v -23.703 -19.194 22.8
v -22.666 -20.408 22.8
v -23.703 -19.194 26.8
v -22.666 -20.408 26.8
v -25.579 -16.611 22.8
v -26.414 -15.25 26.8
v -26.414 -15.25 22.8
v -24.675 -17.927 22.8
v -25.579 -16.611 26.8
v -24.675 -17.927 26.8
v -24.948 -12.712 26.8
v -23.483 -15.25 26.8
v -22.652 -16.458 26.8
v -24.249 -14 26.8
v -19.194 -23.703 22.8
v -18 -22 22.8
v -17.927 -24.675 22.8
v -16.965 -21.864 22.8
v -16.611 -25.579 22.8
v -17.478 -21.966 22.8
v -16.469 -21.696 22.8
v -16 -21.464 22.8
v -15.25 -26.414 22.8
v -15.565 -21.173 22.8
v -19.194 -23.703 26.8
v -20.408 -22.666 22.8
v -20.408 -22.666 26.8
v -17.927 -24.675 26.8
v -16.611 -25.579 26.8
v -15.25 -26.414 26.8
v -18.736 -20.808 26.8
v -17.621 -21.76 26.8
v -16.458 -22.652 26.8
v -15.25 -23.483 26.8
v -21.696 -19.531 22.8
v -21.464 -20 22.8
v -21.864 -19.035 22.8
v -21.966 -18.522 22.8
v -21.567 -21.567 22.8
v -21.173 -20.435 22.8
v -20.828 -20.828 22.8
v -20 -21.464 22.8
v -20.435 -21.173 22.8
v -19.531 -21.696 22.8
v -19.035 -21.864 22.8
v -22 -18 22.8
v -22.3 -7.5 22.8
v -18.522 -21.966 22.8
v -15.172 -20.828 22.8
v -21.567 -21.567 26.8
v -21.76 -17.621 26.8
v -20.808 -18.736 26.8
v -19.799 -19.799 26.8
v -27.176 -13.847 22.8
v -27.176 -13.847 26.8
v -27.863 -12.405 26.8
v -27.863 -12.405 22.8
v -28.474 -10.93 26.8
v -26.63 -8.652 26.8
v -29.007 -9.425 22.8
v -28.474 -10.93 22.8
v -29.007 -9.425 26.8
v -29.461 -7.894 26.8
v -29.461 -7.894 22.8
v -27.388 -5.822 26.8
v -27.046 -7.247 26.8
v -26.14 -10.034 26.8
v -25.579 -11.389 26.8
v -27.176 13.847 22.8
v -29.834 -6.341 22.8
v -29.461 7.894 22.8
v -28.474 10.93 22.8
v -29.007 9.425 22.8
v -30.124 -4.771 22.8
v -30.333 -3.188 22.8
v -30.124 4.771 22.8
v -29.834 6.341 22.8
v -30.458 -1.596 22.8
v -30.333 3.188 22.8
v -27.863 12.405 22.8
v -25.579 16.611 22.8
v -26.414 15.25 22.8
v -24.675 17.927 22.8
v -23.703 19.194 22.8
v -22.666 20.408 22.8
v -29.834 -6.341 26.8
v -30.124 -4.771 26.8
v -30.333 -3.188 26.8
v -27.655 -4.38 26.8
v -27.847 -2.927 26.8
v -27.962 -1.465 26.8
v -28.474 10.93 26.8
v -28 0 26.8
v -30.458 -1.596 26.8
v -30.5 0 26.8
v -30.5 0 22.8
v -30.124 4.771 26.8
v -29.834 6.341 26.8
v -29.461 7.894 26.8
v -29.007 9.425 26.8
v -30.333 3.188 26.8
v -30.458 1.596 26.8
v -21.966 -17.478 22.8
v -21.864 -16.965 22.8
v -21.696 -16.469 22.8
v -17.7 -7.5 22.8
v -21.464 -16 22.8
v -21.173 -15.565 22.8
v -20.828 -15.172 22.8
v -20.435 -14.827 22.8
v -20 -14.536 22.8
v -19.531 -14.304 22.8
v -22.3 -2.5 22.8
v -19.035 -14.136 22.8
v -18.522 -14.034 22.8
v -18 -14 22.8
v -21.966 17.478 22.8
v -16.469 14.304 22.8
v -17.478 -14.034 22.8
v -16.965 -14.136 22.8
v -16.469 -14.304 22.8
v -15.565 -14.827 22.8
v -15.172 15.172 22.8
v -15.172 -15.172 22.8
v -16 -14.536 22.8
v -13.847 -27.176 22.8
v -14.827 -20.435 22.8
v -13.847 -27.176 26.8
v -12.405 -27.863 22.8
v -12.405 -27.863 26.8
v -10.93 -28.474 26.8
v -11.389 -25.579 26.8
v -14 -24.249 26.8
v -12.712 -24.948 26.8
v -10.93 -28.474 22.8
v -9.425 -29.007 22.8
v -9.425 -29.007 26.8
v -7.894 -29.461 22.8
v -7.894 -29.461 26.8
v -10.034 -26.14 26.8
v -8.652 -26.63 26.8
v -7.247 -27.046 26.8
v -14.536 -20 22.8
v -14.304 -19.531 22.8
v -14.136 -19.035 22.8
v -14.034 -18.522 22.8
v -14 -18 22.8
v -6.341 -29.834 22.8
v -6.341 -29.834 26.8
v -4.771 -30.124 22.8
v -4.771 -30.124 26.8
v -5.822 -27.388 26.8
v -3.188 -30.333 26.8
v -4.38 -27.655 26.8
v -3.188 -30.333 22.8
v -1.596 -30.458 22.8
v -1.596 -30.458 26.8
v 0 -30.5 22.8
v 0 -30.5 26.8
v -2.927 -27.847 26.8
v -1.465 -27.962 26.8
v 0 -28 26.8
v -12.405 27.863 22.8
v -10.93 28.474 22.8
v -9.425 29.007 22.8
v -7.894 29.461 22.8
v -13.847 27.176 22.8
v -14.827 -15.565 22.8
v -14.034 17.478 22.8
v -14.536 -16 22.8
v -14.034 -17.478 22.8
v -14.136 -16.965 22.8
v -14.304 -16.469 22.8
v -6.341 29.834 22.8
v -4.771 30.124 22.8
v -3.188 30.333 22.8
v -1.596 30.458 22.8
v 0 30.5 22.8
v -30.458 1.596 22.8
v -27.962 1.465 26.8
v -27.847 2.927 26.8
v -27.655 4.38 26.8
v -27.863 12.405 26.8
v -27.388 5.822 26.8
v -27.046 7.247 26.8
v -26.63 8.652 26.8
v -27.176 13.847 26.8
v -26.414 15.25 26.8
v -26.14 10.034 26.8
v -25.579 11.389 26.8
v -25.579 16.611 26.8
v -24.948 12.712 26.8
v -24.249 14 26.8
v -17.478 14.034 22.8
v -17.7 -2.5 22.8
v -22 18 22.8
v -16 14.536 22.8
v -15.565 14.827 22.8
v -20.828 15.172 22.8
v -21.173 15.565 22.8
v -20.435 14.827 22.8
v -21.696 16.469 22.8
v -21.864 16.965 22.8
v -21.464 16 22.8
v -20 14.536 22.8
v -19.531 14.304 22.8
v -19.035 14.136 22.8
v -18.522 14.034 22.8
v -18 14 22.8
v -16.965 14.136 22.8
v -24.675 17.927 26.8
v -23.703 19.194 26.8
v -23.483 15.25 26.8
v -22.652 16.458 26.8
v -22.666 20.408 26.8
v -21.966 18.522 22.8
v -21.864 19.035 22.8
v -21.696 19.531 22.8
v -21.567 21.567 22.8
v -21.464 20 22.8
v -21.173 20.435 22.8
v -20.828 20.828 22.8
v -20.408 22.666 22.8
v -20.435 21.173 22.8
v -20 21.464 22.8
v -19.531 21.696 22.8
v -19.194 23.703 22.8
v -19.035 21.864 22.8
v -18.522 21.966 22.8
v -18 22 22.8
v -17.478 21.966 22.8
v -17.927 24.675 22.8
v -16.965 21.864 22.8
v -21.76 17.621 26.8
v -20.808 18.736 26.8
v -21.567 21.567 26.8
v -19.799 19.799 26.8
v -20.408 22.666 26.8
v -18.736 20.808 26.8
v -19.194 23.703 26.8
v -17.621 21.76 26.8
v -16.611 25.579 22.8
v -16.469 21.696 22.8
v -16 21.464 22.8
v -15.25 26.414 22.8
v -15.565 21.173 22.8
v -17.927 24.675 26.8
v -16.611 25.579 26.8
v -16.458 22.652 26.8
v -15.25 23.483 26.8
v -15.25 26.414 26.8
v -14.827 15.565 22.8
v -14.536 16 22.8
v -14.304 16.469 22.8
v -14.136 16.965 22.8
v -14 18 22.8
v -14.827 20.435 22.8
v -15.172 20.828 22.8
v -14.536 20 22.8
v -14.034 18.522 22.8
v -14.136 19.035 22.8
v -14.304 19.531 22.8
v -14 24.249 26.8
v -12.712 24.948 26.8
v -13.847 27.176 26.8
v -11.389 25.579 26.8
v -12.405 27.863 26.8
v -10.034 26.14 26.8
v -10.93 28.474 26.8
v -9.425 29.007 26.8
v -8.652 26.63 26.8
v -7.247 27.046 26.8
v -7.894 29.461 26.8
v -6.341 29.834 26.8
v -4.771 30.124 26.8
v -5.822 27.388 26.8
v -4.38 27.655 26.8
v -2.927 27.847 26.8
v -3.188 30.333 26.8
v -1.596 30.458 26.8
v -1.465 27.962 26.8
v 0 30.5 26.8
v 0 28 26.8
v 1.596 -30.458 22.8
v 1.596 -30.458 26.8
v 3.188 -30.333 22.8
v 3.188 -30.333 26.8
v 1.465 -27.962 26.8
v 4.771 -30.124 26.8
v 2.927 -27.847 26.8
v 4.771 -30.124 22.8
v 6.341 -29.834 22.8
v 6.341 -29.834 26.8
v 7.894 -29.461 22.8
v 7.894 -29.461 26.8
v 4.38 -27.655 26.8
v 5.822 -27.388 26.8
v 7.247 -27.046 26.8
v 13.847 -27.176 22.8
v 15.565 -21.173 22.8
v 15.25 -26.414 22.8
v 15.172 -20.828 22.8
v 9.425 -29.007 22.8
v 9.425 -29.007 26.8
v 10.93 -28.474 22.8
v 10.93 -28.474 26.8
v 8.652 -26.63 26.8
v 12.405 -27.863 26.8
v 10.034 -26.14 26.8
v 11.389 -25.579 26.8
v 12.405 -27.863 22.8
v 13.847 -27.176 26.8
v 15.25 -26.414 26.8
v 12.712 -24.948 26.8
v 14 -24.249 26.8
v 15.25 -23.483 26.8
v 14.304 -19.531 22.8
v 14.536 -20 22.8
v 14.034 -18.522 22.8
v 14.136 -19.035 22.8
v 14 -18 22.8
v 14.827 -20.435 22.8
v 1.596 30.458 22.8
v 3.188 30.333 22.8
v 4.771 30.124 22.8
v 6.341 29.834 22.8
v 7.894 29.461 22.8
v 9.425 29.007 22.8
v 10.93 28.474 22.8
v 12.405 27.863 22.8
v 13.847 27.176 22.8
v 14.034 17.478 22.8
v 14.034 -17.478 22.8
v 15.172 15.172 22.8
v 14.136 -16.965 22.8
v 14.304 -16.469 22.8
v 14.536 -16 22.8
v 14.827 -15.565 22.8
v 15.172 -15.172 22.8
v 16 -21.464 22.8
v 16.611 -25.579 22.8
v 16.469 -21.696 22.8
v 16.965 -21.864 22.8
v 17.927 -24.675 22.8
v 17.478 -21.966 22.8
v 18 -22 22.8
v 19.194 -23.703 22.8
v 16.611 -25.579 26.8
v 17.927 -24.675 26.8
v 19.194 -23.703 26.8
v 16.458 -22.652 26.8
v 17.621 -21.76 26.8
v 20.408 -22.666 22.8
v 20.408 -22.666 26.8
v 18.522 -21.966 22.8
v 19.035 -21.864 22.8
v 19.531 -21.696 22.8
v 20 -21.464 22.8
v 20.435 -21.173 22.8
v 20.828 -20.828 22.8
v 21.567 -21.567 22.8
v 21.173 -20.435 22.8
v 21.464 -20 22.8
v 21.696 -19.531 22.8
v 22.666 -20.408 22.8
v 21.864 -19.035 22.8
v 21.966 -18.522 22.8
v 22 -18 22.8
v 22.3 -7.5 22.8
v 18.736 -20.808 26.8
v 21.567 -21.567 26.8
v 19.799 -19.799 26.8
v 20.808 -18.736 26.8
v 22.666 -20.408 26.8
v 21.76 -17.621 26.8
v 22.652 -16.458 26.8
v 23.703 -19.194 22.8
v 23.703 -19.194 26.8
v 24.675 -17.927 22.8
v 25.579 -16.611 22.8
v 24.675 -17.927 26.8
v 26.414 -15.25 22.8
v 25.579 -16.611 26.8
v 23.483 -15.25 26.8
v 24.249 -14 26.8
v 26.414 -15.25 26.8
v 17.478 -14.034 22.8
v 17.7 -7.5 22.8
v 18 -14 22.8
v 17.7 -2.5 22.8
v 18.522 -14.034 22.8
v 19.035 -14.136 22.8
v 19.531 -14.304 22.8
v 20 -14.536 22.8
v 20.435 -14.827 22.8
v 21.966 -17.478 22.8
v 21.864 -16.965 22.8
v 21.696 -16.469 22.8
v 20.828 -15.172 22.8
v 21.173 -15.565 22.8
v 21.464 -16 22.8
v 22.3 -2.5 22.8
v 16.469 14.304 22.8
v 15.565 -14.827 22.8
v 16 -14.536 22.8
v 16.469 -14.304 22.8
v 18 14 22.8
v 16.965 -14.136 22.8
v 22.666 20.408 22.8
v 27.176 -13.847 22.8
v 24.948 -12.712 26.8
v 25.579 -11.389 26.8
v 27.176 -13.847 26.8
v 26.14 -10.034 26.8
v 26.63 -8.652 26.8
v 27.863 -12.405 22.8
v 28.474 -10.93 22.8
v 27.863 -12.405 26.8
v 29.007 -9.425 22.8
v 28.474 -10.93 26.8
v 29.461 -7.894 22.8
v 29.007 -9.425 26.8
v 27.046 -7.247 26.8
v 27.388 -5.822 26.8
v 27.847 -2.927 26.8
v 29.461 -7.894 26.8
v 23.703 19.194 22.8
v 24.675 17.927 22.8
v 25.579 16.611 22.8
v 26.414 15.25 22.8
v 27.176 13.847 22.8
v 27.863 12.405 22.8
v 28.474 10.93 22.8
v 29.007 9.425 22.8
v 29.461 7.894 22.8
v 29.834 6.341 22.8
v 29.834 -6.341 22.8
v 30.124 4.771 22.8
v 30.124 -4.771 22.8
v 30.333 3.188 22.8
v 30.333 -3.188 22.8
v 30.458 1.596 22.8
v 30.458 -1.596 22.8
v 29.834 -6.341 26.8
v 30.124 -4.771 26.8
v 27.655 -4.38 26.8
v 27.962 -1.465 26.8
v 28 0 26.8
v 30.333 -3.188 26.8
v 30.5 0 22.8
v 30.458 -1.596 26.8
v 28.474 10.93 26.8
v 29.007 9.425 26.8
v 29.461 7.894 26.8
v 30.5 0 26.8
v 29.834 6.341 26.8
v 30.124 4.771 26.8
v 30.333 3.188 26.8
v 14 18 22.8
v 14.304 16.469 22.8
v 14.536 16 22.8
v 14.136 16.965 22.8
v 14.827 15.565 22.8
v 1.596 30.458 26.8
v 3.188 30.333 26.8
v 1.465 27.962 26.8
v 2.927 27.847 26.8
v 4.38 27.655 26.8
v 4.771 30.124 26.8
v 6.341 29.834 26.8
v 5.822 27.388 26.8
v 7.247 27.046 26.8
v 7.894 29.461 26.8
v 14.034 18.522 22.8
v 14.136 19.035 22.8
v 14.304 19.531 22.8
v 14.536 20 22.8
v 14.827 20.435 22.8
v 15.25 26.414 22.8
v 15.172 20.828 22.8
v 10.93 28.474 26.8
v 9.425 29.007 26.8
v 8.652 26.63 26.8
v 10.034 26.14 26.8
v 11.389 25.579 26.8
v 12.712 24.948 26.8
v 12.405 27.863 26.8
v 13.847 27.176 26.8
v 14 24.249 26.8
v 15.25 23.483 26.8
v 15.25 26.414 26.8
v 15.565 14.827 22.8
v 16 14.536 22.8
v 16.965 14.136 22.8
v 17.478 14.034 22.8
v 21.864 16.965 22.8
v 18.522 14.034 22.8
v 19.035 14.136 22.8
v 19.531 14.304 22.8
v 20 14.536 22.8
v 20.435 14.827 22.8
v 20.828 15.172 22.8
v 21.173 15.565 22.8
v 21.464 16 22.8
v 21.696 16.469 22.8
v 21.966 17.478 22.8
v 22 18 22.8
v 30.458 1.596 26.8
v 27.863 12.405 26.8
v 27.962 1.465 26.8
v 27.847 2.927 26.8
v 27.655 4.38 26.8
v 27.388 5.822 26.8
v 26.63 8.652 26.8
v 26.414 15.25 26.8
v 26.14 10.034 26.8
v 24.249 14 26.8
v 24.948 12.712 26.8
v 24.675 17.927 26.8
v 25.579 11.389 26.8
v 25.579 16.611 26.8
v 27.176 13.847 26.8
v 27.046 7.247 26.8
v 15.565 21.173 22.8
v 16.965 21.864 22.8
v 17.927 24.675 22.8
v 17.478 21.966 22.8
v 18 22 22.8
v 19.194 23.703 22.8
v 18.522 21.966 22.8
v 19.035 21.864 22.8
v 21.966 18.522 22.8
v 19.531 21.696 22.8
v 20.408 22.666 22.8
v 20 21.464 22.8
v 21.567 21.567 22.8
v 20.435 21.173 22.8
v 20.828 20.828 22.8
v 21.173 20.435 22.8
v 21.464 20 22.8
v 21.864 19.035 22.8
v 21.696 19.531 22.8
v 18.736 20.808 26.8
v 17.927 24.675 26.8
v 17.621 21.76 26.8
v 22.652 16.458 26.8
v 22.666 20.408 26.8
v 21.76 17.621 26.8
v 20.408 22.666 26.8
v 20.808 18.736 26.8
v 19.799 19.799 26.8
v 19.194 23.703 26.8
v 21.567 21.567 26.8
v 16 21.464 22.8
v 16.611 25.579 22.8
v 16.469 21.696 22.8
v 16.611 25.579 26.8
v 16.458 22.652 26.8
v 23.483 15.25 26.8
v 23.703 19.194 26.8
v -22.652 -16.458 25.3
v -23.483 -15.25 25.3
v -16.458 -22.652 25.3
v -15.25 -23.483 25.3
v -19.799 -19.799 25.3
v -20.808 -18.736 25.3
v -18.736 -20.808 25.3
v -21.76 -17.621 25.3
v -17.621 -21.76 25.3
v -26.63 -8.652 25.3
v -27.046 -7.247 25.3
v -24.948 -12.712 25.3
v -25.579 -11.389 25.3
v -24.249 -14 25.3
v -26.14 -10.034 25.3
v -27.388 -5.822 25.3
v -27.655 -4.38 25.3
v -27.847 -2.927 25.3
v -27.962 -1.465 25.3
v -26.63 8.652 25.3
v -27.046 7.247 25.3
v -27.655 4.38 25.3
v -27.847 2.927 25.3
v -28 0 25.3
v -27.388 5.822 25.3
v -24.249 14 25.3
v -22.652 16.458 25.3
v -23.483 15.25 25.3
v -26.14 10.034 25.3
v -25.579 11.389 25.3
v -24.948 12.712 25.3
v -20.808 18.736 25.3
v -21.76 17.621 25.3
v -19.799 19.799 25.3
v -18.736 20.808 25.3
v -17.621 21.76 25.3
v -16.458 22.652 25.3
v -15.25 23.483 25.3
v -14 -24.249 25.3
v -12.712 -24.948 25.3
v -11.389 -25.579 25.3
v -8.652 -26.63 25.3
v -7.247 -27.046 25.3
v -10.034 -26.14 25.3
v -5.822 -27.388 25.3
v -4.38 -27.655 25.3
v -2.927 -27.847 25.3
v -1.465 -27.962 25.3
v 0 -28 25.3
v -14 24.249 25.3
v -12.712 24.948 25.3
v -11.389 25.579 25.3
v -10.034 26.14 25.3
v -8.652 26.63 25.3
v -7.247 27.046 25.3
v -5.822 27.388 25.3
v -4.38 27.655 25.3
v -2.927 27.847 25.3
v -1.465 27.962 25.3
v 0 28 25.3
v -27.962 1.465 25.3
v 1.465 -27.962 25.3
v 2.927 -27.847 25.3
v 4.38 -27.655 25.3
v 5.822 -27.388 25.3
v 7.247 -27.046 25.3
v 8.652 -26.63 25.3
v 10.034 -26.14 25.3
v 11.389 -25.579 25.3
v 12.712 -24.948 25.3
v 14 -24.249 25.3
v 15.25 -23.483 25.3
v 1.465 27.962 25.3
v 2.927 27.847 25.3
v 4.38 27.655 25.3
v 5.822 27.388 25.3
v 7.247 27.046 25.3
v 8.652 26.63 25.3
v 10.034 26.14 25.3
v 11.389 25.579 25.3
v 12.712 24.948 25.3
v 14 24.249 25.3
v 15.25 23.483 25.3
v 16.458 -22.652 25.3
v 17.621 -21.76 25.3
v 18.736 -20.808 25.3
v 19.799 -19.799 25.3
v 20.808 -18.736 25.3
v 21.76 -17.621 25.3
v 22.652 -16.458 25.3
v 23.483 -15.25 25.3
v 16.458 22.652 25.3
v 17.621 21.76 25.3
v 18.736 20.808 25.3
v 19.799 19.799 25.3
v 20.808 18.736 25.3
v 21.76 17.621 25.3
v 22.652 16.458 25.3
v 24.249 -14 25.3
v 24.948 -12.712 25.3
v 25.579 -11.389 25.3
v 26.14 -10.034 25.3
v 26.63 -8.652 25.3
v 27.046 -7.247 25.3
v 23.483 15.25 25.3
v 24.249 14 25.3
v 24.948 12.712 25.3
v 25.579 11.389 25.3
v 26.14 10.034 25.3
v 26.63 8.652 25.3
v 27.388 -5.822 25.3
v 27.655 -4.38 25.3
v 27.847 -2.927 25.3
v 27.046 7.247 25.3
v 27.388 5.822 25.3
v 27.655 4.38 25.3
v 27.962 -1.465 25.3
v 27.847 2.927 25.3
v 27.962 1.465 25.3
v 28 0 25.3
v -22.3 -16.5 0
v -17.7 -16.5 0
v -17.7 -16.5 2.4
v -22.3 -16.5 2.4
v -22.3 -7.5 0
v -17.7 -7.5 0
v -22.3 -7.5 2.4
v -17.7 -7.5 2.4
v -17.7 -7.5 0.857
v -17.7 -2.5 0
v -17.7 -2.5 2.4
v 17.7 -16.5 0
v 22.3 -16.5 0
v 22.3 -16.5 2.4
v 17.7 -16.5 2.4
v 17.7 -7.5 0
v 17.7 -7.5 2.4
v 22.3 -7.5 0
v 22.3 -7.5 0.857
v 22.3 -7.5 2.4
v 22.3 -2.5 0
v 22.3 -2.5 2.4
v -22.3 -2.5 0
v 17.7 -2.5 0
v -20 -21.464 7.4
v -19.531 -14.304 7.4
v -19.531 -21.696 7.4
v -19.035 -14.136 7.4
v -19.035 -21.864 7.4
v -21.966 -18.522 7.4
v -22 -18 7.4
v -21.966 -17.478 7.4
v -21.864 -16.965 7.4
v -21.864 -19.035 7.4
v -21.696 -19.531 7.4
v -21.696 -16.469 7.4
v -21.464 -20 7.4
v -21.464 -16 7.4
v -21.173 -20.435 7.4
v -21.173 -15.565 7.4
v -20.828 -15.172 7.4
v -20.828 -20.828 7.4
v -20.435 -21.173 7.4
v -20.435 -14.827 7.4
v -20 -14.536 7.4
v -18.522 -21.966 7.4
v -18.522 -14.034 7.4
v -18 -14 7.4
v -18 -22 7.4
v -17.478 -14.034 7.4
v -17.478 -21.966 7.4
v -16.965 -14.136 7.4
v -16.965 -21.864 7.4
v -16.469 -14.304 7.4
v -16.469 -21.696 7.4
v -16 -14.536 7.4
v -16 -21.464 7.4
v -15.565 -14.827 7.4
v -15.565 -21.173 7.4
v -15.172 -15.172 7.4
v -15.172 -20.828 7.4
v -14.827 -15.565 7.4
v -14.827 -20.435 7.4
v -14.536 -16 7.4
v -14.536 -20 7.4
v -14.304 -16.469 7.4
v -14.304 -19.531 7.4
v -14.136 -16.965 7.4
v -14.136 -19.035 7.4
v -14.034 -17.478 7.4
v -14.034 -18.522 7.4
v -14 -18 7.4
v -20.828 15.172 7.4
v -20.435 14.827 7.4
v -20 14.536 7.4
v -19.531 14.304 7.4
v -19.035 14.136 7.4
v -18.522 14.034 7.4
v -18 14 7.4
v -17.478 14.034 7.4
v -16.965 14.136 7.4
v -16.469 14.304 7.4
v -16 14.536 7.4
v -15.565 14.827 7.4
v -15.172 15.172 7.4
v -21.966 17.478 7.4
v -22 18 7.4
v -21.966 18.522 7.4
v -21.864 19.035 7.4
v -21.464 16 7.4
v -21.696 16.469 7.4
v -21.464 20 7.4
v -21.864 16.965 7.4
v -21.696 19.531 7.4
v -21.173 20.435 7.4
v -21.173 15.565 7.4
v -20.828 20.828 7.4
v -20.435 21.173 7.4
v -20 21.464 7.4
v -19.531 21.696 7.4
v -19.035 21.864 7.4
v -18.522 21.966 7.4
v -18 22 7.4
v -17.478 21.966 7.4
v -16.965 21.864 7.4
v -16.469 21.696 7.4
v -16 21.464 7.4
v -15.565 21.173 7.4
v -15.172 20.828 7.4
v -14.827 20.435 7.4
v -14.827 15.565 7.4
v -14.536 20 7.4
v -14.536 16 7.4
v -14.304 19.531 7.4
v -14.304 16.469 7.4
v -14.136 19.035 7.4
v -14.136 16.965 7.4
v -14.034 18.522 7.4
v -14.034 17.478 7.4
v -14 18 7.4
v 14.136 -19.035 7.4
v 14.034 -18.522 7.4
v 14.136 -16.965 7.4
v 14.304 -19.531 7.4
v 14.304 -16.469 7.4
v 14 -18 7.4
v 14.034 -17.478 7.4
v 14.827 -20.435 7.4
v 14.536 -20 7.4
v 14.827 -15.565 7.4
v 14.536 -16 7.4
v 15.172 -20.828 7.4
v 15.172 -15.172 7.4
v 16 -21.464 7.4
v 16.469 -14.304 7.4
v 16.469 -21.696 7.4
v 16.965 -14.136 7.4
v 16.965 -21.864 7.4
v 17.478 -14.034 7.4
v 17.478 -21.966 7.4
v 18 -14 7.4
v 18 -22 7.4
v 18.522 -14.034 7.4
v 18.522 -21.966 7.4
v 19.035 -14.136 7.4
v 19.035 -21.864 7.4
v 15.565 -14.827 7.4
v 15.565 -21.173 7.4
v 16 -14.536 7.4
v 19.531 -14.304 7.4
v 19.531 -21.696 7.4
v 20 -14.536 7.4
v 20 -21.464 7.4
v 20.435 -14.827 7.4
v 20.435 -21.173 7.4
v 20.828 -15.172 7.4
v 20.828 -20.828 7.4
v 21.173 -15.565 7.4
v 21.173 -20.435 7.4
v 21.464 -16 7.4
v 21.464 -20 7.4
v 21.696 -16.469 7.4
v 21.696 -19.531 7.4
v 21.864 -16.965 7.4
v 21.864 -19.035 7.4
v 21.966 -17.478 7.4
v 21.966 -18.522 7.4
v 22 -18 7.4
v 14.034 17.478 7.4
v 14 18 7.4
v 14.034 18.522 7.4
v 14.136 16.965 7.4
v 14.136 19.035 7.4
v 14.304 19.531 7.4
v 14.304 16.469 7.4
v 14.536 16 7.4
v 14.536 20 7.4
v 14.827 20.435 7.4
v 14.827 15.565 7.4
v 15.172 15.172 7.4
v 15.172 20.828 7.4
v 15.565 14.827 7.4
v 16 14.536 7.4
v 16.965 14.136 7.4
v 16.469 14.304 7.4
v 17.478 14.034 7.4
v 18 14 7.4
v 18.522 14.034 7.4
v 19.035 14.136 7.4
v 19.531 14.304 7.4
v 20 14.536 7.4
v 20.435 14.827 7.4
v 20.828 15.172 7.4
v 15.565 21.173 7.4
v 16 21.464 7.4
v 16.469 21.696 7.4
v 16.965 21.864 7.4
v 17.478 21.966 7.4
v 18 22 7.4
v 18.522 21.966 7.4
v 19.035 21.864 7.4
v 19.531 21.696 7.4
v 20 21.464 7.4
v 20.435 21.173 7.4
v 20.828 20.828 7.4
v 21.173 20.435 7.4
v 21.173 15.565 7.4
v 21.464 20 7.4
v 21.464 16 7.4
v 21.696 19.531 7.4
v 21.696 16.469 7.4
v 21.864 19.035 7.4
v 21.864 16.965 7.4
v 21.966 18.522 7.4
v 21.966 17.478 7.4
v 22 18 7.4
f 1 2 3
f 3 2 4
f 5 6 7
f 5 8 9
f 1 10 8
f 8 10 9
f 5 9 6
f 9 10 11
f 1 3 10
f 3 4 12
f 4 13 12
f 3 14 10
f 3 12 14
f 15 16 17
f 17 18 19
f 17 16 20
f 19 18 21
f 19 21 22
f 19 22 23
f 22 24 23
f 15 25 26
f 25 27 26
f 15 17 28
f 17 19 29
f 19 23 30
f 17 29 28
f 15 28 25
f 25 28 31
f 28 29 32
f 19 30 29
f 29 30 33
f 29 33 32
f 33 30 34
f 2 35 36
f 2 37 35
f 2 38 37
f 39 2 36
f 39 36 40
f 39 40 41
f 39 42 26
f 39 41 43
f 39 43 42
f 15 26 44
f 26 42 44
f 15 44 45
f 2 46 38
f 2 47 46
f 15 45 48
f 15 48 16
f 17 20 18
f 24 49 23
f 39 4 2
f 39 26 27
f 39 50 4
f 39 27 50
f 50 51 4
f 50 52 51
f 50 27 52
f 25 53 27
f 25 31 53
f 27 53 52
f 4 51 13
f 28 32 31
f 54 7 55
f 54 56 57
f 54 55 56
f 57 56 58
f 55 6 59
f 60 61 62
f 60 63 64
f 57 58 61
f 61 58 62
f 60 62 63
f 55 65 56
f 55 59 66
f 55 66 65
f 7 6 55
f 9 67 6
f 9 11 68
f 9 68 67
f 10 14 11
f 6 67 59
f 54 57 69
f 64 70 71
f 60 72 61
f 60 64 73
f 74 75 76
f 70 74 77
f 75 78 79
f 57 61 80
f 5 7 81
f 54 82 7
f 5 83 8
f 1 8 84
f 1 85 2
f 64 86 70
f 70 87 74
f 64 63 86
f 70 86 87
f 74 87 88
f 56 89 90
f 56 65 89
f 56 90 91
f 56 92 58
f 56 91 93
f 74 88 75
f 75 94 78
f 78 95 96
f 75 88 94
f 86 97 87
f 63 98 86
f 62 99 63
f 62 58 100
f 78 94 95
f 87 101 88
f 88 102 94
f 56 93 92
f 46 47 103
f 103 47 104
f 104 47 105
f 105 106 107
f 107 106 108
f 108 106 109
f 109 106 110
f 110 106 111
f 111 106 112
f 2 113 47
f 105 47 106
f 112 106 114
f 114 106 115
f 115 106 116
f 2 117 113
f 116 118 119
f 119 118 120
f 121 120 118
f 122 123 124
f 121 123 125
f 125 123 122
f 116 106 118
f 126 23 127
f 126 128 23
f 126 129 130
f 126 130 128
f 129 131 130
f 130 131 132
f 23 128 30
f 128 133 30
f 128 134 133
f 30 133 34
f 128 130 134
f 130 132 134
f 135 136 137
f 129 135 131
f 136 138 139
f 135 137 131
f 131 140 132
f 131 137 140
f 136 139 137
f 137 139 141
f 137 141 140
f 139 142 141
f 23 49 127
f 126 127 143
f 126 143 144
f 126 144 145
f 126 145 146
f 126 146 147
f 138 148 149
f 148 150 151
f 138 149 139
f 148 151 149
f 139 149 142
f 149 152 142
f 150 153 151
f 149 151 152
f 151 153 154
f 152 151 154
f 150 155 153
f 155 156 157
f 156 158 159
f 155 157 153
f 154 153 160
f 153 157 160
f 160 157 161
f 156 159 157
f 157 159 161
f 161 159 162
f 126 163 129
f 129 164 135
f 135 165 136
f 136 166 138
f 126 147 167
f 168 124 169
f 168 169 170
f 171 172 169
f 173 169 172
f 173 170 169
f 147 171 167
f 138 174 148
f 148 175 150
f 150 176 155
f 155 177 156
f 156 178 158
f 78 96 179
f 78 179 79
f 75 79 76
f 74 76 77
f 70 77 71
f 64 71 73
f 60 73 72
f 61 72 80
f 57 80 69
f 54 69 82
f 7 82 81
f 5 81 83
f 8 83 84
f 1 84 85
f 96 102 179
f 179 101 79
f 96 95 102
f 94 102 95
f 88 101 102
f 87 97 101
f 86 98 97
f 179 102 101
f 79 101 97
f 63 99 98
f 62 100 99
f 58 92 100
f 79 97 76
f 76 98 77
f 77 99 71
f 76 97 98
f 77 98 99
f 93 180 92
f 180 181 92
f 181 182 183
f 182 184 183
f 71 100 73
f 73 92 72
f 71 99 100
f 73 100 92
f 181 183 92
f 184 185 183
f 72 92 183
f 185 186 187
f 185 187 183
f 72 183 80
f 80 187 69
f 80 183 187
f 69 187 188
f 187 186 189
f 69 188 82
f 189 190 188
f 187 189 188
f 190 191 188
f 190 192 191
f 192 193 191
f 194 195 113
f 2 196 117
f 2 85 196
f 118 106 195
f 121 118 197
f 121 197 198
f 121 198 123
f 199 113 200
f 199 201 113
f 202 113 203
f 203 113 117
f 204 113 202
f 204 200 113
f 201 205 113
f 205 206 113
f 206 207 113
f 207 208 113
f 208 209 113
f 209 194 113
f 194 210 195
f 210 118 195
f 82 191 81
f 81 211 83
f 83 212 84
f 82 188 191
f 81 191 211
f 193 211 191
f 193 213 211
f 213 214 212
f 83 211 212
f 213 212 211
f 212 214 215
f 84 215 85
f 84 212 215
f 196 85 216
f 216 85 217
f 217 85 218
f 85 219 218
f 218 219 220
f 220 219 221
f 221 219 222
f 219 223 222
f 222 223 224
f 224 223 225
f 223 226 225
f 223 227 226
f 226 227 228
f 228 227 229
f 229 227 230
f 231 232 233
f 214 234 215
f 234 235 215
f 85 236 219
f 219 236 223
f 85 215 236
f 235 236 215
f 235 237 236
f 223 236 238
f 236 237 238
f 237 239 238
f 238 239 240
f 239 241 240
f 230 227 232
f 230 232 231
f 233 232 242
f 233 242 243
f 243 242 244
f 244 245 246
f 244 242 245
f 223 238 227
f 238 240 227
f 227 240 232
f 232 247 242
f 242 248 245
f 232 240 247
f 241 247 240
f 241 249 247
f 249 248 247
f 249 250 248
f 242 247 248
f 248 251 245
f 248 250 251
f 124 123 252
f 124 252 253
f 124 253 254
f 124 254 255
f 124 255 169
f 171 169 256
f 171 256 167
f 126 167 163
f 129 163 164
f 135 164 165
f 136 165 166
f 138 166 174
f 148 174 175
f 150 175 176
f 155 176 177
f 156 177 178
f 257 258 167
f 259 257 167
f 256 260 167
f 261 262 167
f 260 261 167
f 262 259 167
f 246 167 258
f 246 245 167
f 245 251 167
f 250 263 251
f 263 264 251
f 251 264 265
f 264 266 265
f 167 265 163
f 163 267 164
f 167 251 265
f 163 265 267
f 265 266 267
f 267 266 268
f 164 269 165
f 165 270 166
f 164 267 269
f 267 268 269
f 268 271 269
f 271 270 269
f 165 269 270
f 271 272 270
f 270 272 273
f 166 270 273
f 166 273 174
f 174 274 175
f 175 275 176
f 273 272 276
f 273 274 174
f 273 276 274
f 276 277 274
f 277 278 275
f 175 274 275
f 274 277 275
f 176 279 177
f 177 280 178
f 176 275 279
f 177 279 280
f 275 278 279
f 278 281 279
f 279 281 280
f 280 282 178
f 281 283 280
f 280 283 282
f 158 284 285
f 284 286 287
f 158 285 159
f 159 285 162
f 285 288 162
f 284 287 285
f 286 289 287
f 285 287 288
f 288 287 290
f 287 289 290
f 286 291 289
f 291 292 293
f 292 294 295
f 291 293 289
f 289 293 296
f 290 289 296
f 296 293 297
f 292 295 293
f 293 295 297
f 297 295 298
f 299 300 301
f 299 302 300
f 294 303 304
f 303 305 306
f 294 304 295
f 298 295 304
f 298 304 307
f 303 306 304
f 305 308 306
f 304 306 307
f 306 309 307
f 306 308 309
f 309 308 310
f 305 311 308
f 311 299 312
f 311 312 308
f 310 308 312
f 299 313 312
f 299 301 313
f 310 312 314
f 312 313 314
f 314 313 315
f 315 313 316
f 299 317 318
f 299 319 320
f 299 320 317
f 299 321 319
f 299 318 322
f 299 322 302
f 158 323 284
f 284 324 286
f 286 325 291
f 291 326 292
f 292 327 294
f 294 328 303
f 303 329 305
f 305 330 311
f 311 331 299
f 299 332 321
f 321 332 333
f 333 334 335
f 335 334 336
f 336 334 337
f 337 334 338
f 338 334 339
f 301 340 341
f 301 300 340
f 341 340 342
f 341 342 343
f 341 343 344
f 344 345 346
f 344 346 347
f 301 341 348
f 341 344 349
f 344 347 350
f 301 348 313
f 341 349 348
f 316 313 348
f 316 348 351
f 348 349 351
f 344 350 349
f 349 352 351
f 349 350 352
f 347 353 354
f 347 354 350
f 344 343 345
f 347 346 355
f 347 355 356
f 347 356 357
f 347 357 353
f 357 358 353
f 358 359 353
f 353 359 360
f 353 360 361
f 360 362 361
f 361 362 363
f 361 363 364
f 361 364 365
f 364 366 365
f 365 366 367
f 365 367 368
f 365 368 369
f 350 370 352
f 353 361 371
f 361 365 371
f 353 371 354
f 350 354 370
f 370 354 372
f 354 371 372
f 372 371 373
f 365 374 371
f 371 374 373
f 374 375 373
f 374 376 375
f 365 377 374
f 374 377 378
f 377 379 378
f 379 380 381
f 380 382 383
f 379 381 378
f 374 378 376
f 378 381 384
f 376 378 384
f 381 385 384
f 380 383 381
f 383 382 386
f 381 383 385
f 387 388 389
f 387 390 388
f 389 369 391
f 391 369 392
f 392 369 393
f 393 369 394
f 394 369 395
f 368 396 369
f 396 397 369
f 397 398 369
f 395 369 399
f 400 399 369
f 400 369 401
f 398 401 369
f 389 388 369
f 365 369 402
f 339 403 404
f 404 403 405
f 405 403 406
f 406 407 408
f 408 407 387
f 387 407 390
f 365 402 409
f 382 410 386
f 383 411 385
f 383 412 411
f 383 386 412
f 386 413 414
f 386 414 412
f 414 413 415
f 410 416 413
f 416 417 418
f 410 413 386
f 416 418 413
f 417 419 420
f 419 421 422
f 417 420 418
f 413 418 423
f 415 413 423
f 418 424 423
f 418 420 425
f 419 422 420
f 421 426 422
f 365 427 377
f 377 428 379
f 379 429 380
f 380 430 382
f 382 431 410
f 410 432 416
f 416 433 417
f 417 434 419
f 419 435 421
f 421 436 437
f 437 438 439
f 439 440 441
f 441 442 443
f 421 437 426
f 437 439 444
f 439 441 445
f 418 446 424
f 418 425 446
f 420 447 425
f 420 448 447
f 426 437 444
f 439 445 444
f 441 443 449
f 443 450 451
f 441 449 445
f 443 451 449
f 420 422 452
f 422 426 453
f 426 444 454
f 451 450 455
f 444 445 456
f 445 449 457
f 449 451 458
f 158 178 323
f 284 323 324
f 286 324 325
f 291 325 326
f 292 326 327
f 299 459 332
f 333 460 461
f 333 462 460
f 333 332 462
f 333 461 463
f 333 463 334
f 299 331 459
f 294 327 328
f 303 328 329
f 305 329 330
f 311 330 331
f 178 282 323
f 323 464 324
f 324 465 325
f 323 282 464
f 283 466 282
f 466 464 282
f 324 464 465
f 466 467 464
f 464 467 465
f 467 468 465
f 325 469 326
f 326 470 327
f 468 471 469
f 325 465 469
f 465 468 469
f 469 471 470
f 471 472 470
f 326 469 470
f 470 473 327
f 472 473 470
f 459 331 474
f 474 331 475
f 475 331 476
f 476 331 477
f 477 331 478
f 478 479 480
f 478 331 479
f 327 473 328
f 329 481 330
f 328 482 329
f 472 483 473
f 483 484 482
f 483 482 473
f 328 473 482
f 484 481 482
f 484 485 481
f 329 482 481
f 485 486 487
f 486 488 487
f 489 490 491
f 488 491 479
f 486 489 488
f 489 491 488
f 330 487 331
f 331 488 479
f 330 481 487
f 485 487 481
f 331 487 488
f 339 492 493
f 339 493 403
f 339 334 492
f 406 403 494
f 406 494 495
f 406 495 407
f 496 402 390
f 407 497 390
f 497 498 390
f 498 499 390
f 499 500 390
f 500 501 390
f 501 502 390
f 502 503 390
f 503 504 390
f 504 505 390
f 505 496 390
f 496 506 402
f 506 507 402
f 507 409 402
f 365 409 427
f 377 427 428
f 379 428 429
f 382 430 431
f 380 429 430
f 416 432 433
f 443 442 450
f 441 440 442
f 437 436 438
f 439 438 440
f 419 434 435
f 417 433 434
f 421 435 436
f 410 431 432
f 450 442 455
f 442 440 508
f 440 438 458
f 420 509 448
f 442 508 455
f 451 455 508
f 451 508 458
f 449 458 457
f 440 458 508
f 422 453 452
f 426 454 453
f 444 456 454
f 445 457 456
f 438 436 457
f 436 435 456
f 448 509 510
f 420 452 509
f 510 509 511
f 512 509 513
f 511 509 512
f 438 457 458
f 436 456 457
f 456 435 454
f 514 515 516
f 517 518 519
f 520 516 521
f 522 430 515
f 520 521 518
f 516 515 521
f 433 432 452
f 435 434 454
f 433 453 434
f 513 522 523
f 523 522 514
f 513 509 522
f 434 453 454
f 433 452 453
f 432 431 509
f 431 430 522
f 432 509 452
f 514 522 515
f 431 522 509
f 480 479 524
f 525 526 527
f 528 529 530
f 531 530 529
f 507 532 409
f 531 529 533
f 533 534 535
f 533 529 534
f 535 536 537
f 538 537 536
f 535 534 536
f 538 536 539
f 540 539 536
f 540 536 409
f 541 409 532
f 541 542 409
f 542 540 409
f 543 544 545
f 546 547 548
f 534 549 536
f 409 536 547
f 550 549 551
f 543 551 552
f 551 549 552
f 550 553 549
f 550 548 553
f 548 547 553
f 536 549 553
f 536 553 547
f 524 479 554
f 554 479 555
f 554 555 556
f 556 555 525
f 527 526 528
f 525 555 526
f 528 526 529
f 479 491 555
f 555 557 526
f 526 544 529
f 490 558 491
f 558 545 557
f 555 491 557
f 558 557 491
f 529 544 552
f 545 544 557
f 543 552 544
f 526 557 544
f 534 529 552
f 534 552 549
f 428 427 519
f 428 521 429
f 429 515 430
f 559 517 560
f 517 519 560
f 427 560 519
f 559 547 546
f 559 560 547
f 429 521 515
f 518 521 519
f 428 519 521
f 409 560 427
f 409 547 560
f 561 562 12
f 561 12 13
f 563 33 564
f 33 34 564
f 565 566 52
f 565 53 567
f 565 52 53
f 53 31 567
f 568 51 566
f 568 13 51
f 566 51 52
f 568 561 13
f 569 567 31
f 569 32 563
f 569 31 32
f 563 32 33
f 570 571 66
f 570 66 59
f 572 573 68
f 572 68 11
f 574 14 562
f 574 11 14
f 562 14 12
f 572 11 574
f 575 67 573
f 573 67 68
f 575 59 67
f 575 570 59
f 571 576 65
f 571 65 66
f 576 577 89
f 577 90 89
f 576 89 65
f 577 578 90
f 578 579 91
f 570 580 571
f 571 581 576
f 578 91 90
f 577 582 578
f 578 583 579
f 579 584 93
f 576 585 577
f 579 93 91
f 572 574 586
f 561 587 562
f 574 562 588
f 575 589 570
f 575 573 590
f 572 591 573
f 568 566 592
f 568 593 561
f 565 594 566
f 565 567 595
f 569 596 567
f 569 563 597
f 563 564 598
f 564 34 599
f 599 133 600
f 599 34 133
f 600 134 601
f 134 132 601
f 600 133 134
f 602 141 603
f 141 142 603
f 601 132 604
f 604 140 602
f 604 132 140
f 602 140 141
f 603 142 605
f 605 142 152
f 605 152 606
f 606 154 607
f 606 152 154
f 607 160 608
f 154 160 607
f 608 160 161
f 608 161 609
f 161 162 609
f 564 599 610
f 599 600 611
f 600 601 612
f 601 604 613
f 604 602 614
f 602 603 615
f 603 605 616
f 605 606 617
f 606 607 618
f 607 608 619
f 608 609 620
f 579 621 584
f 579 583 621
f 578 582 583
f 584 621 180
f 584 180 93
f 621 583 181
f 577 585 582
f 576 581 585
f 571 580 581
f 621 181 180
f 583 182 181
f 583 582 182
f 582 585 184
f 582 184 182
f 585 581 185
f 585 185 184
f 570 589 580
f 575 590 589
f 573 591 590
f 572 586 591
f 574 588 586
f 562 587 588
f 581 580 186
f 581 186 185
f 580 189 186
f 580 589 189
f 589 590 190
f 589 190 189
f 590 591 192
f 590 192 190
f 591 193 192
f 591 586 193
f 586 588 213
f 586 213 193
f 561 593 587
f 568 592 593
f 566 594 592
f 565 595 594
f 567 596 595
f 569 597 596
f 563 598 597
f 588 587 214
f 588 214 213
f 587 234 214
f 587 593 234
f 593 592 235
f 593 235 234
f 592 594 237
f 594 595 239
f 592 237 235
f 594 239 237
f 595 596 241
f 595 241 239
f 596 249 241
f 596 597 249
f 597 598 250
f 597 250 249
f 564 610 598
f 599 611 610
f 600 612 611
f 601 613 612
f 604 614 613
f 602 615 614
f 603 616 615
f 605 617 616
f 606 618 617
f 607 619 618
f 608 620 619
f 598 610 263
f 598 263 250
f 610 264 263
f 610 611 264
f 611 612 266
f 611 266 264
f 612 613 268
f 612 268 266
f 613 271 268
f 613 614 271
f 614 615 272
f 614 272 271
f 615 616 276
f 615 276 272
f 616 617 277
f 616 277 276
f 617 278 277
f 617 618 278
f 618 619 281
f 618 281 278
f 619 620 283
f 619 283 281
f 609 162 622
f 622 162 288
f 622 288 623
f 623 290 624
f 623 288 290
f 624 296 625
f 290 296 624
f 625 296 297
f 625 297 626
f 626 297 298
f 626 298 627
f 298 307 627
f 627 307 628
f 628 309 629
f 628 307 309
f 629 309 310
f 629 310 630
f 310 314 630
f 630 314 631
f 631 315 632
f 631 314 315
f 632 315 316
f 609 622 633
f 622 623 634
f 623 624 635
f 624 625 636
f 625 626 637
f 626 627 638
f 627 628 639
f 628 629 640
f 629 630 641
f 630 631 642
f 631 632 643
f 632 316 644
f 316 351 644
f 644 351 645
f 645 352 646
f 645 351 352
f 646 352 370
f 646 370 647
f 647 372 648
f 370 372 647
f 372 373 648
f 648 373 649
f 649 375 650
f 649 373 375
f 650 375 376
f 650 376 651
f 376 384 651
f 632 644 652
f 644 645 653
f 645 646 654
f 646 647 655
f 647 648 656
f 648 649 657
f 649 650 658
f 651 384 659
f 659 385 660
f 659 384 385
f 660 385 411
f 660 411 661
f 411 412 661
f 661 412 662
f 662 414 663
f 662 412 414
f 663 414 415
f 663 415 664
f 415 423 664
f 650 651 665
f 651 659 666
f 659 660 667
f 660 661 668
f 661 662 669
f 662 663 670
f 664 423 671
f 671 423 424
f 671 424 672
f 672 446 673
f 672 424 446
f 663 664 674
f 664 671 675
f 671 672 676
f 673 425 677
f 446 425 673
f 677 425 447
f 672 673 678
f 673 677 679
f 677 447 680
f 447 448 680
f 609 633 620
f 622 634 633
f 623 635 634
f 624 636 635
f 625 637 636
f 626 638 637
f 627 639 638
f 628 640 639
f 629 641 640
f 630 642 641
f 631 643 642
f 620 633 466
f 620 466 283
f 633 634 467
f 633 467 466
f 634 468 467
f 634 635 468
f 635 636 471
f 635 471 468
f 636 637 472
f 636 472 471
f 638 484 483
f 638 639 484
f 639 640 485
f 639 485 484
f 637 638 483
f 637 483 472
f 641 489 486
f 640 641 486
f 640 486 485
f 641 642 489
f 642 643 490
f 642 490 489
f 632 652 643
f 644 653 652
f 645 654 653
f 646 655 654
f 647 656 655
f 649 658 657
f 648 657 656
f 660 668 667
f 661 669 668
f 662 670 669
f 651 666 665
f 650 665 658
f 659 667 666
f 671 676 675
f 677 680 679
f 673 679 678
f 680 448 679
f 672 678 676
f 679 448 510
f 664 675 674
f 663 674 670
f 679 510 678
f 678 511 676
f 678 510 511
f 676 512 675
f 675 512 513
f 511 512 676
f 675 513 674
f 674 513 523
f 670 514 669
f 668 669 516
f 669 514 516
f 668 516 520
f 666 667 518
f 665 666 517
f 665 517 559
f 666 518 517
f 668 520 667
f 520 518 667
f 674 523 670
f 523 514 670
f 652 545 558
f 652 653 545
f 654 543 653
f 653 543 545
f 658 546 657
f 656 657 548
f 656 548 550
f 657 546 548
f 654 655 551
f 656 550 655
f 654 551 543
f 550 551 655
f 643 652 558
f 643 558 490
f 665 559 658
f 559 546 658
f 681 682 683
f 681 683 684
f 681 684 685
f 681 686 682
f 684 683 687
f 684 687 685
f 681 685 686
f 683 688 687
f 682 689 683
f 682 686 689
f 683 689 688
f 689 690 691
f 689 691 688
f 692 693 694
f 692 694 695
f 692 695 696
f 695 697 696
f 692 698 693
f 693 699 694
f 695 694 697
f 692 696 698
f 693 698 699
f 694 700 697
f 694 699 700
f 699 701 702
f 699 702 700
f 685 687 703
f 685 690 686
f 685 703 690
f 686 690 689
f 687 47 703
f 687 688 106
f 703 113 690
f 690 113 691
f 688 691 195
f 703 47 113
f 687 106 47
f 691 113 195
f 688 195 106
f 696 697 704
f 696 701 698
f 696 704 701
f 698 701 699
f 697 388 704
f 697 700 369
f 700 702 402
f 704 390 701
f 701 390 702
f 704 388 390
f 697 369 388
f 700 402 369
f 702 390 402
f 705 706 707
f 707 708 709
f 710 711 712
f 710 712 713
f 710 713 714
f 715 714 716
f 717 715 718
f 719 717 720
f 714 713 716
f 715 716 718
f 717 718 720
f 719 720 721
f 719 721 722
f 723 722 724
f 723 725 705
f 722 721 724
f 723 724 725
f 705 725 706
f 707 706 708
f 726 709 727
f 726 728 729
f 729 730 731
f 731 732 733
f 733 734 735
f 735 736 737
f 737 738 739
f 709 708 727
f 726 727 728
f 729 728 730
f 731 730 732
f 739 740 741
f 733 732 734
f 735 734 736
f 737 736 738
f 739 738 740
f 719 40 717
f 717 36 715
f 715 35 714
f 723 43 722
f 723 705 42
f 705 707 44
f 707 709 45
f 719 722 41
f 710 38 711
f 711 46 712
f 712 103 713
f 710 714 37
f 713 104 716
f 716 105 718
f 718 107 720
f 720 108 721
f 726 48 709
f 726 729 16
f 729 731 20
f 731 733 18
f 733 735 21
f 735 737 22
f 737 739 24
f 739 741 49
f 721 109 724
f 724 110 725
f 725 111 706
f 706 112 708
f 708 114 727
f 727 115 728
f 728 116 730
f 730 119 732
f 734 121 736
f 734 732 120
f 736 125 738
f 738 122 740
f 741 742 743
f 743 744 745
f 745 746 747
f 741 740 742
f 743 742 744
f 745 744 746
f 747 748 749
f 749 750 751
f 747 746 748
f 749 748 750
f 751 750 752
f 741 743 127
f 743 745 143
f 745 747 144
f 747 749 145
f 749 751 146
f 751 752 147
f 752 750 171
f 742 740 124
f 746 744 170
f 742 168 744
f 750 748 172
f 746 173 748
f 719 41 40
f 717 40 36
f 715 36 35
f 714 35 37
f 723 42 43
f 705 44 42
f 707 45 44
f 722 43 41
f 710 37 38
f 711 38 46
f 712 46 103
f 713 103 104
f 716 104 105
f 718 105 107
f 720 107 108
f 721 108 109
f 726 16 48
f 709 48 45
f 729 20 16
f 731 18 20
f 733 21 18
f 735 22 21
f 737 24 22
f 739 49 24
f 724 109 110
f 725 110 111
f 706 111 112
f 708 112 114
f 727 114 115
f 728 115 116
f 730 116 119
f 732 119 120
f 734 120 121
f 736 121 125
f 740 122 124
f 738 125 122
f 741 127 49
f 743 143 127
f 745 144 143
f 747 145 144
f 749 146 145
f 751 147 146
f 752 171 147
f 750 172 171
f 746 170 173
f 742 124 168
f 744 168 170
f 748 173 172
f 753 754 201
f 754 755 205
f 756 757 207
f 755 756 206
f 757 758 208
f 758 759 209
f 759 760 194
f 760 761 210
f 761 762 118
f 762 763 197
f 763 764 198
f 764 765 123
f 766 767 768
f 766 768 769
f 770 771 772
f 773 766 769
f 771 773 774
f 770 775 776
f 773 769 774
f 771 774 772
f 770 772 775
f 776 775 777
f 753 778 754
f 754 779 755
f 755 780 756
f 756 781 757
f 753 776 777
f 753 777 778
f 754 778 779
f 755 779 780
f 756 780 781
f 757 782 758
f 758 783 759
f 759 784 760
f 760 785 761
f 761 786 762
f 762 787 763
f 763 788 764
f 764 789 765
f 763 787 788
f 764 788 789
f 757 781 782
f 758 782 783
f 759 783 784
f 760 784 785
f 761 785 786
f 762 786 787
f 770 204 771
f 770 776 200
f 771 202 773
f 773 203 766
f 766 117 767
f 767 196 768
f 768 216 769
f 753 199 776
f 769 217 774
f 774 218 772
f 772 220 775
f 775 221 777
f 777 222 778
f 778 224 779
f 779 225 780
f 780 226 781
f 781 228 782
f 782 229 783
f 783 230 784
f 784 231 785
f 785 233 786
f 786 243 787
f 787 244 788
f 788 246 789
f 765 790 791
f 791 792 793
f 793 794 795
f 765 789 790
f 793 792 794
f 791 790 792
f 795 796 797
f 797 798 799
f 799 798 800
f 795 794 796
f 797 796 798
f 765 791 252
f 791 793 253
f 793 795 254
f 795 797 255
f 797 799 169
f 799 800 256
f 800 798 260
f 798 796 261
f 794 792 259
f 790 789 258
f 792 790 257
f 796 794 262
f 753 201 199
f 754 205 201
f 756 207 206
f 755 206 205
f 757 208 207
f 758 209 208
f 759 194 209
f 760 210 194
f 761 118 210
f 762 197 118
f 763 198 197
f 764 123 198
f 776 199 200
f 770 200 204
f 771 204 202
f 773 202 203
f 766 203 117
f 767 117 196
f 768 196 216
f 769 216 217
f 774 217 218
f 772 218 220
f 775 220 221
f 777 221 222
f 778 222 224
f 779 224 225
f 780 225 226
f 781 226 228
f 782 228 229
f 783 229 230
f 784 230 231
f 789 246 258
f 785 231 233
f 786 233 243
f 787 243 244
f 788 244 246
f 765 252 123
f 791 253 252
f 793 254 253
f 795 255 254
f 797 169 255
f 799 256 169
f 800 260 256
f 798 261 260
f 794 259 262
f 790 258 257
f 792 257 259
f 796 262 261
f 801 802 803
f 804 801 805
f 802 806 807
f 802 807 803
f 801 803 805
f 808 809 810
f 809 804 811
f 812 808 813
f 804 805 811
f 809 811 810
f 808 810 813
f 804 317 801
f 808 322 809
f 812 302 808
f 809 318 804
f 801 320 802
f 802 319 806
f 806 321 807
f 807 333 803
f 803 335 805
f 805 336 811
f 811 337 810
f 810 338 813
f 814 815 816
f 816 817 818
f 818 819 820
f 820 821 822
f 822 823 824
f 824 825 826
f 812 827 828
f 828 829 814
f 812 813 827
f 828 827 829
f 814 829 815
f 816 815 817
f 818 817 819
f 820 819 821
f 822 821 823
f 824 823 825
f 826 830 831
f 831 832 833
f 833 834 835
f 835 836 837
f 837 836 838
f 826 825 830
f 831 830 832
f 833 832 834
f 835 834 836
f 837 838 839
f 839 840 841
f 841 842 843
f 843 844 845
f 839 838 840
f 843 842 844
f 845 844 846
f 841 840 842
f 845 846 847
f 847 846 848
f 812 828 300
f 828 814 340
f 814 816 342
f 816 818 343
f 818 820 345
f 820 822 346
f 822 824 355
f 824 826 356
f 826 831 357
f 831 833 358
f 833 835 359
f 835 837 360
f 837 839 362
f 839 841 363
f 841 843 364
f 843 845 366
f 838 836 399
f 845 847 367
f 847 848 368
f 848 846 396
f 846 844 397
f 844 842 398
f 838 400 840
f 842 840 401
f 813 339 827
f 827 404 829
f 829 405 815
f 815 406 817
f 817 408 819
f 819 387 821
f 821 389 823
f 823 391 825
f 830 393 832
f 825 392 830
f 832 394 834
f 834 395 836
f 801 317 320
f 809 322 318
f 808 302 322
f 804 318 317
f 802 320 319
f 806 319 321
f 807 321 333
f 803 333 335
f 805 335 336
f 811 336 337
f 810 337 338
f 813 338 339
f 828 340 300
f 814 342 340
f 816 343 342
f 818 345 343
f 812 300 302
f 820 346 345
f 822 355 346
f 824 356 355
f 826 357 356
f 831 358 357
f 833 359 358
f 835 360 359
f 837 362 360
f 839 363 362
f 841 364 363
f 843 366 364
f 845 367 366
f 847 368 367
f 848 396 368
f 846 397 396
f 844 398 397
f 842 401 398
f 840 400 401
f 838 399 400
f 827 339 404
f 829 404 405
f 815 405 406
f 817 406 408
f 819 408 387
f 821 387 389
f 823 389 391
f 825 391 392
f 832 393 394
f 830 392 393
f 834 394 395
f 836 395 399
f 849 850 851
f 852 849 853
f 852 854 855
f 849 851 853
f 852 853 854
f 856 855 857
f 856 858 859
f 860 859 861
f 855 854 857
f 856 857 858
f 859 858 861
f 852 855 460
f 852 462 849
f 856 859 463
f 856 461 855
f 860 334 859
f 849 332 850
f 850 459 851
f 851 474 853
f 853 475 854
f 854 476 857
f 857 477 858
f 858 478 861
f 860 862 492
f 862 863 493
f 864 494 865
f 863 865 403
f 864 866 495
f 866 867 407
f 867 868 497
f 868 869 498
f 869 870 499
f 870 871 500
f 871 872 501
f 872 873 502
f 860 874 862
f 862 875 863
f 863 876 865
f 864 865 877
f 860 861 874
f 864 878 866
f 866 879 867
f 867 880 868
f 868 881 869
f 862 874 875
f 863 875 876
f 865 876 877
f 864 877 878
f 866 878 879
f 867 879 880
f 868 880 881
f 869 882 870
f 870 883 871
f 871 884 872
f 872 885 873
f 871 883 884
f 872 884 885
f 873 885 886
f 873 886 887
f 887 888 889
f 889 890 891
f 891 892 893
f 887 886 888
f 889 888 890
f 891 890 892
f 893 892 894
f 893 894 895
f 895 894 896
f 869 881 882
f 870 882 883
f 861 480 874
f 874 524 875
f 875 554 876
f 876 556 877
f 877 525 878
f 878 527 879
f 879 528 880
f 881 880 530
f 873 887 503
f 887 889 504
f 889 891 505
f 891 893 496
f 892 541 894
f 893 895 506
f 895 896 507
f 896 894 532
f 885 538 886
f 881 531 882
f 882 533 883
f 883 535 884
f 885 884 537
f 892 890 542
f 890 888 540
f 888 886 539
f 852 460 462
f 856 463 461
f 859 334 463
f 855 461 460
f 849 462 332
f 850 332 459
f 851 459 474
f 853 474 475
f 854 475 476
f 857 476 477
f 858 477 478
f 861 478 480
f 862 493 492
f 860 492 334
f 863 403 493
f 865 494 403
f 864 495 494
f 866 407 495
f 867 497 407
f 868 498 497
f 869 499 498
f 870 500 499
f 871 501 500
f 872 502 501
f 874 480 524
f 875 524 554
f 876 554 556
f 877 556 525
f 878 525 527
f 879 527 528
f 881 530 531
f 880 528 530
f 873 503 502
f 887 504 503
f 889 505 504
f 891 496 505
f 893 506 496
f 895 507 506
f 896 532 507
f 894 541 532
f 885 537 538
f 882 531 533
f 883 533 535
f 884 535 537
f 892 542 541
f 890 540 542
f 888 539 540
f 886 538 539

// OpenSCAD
// MagSafe dock for Xteink readers (X4, X4 Pro, X4C, X3) on an IKEA Skadis board.
//
// INTENT
//   The reader hangs on the board by its built-in MagSafe magnet and charges over USB-C
//   while it hangs. A MagSafe ring sits in the pocket on the disc front. The reader's
//   back touches the ring, so the magnetic grip stays at full strength.
//
// REQUIREMENTS (from the user)
//   1. The ring face is flush with the disc face. A raised lip or a deep pocket adds
//      distance between ring and reader and weakens the grip.
//   2. The USB-C port stays free. The disc (61 mm) is narrower than the reader (69 mm
//      wide), so the port at the reader edge stays clear of the disc.
//   3. 15 mm of free space between the disc back and the board front, for a charger
//      or cable behind the device (see `standoff`).
//   4. The disc stays parallel to the board under the reader's weight (see PADS).
//
// ORIGIN OF THE DIMENSIONS
//   - Disc 61 mm, 40 mm hook pitch: taken from the Skadis MagSafe model
//     (MAKERWORLD 773103, file MAGSAFE.step). Its pocket (56 mm, 5.4 mm deep) holds a
//     charger puck. This design needs a ring, so the pocket is shallow instead.
//   - The Xteink model (MAKERWORLD 3477734) is a ribbed stand with no MagSafe ring.
//     Nothing from it is copied.
//   - Skadis slots: 5 x 15 mm, board 5 mm. Standard values, not measured on the
//     user's board.
//
// HOOKS
//   Each hook is an L. The stem goes through a slot and rests on the slot's lower
//   edge. The foot lies behind the board and hangs below the stem. Stem + foot is
//   14 mm tall and the slot is 15 mm, so mounting is a straight push, then a drop.
//   To unhook, lift 9 mm (`foot_drop`) and pull. A taller hook could not be removed
//   without tilting it. The two hooks sit 40 mm apart in one slot row.
//
// PADS
//   The hooks form a 15 mm cantilever. The reader's weight would tip the disc
//   forward. Four pads press on the board front and hold the disc parallel. They
//   sit at (+-18, +-18) mm. That point is solid board if the slot rows are 20 mm
//   apart and alternate rows shift 20 mm sideways. A pad over a slot would sink in.
//   The pads touch the board with no gap, because play already lets the hooks slide.
//
// PRINTING
//   Print as modeled: hook feet on the bed, pocket up. The hooks need no supports.
//   The pads start mid-air, so they need supports. Use more perimeters on the stems.
//
// NOT VERIFIED (no test print yet)
//   - ring_od and ring_depth are guesses: measure the ring.
//   - The pad positions against the real slot layout.
//   - Stem strength under the reader's load (74 g at 15 mm lever).
//   - Hook clearance `play`.
ring_od = 56;          // [40:0.5:70] MagSafe ring outer diameter (mm)
ring_depth = 1.5;      // [0:0.1:8] Pocket depth: set equal to the ring thickness so the ring sits flush (mm)
rim = 2.5;             // [1:0.5:6] Wall around the pocket (mm)
plate_t = 4;           // [2:0.5:14] Disc thickness (mm)
cable_d = 0;           // [0:0.2:30] Center hole, 0 for none (mm)

slot_w = 5;            // Skadis slot width (mm)
slot_h = 15;           // Skadis slot height (mm)
slot_pitch = 40;       // Slots in one row repeat every 40 mm
board_t = 5;           // Skadis board thickness (mm)
standoff = 15;         // [0:1:30] Gap between disc back and board front, for a charger or cable (mm)
pad_d = 8;             // Pad diameter, pads press on the board so the disc stays parallel (mm)
pad_xy = 18;           // Pad offset from the disc center on both axes, clear of every Skadis slot (mm)
play = 0.4;            // Clearance so the hook slides in (mm)
stem_h = 5;            // Stem height, rests on the slot's lower edge (mm)
foot_t = 2.4;          // Foot thickness behind the board (mm)
foot_drop = 9;         // Foot length below the stem; lift this far to unhook (mm)

disc_d = ring_od + 2 * rim;
hook_w = slot_w - 0.4;
stem_len = board_t + play;
plate_z = foot_t + stem_len + standoff; // disc back face, standoff mm in front of the board
// Foot + stem must stay shorter than the slot, or the dock cannot come off.
assert(stem_h + foot_drop < slot_h, "hook taller than slot");

module hook() {
    y0 = -slot_h / 2;
    translate([-hook_w / 2, 0, 0]) {
        // foot on the bed, hangs below the stem, behind the board
        translate([0, y0 - foot_drop, 0]) cube([hook_w, stem_h + foot_drop, foot_t]);
        // stem through the slot, then across the standoff into the disc
        translate([0, y0, 0]) cube([hook_w, stem_h, plate_z + 0.05]);
    }
}

translate([0, 0, plate_z]) difference() {
    cylinder(d = disc_d, h = plate_t, $fn = 120);
    translate([0, 0, plate_t - ring_depth]) cylinder(d = ring_od, h = ring_depth + 0.01, $fn = 120);
    if (cable_d > 0) translate([0, 0, -0.01]) cylinder(d = cable_d, h = plate_t + 0.02, $fn = 80);
}
for (s = [-1, 1]) translate([s * slot_pitch / 2, 0, 0]) hook();

// Pads sit on solid board between slots and carry the load the hooks cannot.
for (sx = [-1, 1], sy = [-1, 1])
    translate([sx * pad_xy, sy * pad_xy, foot_t + board_t])
        cylinder(d = pad_d, h = plate_z - foot_t - board_t + 0.05, $fn = 48);
